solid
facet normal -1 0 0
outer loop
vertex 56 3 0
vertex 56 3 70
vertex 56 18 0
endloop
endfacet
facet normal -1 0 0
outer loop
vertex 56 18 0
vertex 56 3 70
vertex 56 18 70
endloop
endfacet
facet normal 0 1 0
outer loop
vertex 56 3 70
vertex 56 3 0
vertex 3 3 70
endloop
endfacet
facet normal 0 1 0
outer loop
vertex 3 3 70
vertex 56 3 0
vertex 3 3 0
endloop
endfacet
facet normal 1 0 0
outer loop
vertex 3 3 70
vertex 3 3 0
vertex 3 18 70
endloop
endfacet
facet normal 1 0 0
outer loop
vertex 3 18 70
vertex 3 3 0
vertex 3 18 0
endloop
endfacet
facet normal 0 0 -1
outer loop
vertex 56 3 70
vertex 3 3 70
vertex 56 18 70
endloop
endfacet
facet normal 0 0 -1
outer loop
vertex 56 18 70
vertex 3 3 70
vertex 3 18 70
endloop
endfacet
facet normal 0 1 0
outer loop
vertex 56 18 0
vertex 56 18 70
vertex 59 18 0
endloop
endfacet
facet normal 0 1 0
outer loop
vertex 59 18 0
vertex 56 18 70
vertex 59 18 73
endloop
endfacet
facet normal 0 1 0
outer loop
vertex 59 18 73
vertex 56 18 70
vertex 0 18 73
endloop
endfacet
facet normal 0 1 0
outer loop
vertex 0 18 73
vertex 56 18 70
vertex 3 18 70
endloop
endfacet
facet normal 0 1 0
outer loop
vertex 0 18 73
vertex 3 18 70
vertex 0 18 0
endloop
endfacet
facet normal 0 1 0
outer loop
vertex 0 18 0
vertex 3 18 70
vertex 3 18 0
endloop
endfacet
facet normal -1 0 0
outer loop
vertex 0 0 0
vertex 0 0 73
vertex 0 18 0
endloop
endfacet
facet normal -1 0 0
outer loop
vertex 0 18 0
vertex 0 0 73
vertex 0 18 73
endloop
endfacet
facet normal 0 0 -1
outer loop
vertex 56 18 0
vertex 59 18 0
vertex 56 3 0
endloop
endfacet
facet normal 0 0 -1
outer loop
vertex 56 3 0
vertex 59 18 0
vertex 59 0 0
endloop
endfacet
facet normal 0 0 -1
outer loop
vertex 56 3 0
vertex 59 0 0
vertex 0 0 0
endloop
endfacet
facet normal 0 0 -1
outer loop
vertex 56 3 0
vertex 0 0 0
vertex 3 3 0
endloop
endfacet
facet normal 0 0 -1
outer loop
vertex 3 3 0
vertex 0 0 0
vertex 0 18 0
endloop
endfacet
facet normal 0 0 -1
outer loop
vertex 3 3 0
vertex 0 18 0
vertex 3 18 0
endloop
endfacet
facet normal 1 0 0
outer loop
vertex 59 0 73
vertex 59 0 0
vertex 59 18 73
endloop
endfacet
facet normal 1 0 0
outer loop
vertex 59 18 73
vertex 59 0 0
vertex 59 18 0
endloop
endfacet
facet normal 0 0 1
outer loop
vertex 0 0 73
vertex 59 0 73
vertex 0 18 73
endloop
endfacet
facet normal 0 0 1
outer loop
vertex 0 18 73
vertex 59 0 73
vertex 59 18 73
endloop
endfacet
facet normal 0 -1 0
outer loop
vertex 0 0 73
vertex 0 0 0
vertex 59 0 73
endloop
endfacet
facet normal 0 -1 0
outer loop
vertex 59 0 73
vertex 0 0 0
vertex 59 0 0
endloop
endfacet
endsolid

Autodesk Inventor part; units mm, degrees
ref_plane "YZ Plane" through (0, 0, 0) normal (1, 0, 0) x (0, 1, 0)
ref_plane "XZ Plane" through (0, 0, 0) normal (0, 1, 0) x (-1, 0, 0)
ref_plane "XY Plane" through (0, 0, 0) normal (0, 0, 1) x (1, 0, 0)
sketch "Sketch2" plane through (0, 0, 0) normal (0, 1, 0) x (-1, 0, 0)
  line L0 (0, 0) -> (-59, 0)
  line L1 (-59, 0) -> (-59, 73)
  line L2 (-59, 73) -> (0, 73)
  line L3 (0, 73) -> (0, 0)
  dimension "d0" = 59
  dimension "d1" = 73
extrude "Extrusion1" add sketch "Sketch2" along normal blind 18
shell "Shell1" thickness 3 removed faces 1 at (19.6667, 18, 24.3333)
sketch "Sketch4" plane through (59, 0, 0) normal (0, 0, -1) x (-1, 0, 0)
  point P0 (59, 0)
sketch "Sketch5" plane through (3, 3, 3) normal (0, 0, 1) x (1, 0, 0)
  line L0 (0, 0) -> (0, 15) projected
  line L1 (0, 15) -> (53, 15) projected
  line L2 (0, 0) -> (53, 0)
  line L3 (53, 0) -> (53, 15)
  line L4 (53, 15) -> (0, 15)
  line L5 (0, 15) -> (0, 0)
  point P0 (-3, -3)
extrude "Extrusion3" cut sketch "Sketch5" against normal blind 10
properties part number "arduino array box v02"
